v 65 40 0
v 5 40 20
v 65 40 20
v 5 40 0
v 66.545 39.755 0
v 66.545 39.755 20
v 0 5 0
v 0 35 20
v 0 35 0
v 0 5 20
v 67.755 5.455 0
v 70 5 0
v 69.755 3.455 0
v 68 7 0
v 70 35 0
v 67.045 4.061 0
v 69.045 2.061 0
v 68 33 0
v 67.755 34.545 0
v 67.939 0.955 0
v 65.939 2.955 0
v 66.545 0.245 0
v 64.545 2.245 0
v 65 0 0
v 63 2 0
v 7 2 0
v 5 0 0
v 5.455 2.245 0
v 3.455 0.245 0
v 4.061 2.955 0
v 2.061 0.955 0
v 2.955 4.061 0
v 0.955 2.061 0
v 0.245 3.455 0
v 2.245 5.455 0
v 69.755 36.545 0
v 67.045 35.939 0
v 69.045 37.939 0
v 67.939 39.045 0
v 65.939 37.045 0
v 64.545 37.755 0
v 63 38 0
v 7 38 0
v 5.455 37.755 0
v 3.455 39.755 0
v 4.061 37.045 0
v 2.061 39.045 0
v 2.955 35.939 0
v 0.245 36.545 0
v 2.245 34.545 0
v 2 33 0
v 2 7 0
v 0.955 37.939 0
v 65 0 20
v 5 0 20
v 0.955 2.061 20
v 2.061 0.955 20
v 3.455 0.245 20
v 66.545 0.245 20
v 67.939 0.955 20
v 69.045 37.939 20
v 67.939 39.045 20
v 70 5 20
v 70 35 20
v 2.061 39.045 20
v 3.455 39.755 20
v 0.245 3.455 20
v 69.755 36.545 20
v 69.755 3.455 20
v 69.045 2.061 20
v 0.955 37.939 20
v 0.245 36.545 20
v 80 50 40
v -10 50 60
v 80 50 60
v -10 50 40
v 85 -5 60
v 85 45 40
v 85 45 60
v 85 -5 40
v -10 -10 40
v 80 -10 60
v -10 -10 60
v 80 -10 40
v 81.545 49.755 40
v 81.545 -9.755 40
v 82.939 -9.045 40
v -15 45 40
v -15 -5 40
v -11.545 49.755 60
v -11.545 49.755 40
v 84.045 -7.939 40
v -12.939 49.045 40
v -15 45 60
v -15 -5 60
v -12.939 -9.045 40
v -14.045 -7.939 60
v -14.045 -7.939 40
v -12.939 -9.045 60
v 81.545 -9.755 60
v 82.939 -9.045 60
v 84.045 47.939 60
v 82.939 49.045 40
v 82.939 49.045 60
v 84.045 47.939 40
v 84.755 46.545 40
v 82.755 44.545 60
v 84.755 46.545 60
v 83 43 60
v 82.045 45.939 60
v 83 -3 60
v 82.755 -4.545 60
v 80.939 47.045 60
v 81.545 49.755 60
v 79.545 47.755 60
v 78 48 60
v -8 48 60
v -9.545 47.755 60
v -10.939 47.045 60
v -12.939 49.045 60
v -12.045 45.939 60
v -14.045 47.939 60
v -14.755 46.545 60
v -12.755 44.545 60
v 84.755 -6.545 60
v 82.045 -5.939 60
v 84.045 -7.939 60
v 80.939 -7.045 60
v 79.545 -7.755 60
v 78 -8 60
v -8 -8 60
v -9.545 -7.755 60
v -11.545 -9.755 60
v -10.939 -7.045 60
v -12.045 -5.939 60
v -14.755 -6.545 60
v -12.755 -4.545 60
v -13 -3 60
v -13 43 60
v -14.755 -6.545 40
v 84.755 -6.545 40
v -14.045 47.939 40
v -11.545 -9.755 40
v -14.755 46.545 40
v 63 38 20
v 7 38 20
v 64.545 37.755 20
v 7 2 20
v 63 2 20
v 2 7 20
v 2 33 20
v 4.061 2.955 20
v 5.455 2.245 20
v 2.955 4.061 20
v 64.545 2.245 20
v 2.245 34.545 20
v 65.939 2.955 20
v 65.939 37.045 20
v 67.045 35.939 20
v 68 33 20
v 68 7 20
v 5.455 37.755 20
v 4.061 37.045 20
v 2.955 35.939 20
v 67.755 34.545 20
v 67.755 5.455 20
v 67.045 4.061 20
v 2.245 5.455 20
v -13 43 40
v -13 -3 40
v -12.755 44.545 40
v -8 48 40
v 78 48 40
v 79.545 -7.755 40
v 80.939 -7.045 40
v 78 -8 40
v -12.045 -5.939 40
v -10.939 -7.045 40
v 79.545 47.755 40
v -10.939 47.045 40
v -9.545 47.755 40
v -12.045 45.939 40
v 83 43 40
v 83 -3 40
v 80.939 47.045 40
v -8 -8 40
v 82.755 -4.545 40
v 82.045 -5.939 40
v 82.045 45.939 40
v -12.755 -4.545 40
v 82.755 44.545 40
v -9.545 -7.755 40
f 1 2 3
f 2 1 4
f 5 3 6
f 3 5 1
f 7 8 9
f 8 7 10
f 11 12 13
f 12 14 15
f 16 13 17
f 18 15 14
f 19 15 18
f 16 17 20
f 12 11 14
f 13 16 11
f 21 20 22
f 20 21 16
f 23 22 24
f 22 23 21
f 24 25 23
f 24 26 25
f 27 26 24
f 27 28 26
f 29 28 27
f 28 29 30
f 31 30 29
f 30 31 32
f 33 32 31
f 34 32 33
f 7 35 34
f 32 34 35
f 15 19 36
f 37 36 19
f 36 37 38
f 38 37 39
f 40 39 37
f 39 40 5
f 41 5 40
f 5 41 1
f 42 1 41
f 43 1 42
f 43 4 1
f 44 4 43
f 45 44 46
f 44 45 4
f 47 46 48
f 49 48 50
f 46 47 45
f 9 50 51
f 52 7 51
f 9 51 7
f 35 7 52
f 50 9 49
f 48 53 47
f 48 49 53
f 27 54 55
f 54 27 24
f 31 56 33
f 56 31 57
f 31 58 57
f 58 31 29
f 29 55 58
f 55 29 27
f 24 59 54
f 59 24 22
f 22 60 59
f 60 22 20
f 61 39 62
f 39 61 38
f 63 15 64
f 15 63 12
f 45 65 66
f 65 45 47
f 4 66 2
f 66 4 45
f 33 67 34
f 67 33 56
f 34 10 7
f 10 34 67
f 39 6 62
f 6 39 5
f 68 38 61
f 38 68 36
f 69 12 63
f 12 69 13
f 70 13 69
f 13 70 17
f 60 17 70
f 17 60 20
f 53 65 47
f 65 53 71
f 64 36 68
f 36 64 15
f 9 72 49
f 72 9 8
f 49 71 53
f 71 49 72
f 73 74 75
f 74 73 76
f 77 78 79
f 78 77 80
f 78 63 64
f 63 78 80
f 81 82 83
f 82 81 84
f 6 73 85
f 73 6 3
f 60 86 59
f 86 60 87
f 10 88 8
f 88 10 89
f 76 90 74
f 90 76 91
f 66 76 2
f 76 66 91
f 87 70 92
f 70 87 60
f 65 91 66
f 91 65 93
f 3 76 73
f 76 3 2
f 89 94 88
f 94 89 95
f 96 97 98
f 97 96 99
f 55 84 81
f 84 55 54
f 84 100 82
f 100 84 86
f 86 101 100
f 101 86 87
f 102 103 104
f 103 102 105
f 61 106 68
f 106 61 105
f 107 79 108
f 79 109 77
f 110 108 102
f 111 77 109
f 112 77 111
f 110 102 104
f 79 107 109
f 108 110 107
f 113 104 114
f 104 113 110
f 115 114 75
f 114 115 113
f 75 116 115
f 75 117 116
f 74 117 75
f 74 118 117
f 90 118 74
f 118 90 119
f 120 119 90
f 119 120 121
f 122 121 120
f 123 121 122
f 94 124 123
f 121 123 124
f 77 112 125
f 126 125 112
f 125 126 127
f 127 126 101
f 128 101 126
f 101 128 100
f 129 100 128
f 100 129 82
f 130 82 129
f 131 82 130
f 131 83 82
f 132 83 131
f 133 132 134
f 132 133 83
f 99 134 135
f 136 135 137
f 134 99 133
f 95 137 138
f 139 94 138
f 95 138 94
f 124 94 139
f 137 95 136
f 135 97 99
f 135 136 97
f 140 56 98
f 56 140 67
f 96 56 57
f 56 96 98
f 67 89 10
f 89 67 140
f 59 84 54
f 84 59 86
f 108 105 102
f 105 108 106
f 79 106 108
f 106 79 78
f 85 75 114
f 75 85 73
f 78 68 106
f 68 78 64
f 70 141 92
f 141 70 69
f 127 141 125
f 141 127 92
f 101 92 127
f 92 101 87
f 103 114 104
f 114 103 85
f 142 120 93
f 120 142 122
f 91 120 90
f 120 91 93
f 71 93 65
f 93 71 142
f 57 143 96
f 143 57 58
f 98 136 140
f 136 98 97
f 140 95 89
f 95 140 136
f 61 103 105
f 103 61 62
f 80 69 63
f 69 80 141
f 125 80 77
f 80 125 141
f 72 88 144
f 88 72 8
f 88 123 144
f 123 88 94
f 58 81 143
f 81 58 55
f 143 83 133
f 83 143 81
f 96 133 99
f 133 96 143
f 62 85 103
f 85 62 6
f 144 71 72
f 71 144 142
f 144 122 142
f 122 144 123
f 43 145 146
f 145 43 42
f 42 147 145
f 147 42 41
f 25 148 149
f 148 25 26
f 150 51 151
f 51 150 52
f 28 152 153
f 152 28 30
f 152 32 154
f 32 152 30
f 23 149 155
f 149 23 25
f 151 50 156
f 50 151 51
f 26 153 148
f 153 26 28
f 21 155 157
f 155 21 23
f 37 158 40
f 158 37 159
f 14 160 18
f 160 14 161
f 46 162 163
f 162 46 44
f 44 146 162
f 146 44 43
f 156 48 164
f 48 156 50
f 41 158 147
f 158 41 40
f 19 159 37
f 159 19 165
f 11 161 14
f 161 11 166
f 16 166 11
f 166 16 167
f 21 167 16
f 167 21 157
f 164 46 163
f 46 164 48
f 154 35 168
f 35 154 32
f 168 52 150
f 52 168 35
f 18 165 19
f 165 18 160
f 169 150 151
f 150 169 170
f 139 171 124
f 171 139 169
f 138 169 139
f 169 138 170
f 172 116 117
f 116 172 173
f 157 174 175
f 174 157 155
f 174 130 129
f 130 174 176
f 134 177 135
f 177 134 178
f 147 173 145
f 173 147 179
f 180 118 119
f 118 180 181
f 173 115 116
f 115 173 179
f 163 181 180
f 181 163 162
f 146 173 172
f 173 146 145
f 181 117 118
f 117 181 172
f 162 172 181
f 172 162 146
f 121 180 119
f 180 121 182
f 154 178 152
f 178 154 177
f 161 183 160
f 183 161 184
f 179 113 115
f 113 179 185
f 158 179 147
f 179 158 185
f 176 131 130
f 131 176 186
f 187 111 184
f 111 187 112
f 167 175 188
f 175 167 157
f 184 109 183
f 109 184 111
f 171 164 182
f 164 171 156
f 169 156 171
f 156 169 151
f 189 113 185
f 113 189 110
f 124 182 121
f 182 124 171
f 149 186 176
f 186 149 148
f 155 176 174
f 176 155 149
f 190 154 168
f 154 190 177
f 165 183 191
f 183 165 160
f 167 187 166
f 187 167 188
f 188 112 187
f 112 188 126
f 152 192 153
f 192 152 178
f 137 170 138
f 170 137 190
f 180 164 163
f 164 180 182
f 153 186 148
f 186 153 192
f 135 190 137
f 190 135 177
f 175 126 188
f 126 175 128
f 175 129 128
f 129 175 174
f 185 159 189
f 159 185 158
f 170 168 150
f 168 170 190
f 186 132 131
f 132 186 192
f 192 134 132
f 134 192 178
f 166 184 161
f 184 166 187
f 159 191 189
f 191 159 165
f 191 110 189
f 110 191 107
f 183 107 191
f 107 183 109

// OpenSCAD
radius = 5;
$fn=20;

// -----------------------------------------
// -----------------------------------------
module GenericBase(xDistance, yDistance, zHeight) {
	translate([radius,radius,0]) {
		minkowski()
		{
			cube([xDistance-(radius*2), yDistance-(radius*2), (zHeight/2)]);
			cylinder(r=radius,h=(zHeight/2));
		}
	}
}

module HollowGenericBase(xDistance, yDistance, zHeight) {
    difference() {
        union() {
            GenericBase(xDistance, yDistance, zHeight);
        }
        union() {
            translate([2,2,0]) {
                //GenericBase(xDistance-2, yDistance-2, zHeight);
            }
        }
    }
}

// -----------------------------------------
// -----------------------------------------
module Funnel(baseWidth, baseDepth, topWidth, topDepth) {
   
    GenericBase(baseWidth, baseDepth, 20);
       
    hull() {
       
        // box section
        translate([0,0,20]) {
        GenericBase(baseWidth, baseDepth, 20);
        }
                   
        // Top of the funnel
        translate([-((topWidth-baseWidth)/2),-((topDepth-baseDepth)/2),20+20]) {
            GenericBase(topWidth, topDepth, 20);
        }
    }
        
}

difference() {
    Funnel(70,40, 100, 60);
    translate([2,2,0]) {
        Funnel(70-4,40-4, 100-4, 60-4);
    }
}
